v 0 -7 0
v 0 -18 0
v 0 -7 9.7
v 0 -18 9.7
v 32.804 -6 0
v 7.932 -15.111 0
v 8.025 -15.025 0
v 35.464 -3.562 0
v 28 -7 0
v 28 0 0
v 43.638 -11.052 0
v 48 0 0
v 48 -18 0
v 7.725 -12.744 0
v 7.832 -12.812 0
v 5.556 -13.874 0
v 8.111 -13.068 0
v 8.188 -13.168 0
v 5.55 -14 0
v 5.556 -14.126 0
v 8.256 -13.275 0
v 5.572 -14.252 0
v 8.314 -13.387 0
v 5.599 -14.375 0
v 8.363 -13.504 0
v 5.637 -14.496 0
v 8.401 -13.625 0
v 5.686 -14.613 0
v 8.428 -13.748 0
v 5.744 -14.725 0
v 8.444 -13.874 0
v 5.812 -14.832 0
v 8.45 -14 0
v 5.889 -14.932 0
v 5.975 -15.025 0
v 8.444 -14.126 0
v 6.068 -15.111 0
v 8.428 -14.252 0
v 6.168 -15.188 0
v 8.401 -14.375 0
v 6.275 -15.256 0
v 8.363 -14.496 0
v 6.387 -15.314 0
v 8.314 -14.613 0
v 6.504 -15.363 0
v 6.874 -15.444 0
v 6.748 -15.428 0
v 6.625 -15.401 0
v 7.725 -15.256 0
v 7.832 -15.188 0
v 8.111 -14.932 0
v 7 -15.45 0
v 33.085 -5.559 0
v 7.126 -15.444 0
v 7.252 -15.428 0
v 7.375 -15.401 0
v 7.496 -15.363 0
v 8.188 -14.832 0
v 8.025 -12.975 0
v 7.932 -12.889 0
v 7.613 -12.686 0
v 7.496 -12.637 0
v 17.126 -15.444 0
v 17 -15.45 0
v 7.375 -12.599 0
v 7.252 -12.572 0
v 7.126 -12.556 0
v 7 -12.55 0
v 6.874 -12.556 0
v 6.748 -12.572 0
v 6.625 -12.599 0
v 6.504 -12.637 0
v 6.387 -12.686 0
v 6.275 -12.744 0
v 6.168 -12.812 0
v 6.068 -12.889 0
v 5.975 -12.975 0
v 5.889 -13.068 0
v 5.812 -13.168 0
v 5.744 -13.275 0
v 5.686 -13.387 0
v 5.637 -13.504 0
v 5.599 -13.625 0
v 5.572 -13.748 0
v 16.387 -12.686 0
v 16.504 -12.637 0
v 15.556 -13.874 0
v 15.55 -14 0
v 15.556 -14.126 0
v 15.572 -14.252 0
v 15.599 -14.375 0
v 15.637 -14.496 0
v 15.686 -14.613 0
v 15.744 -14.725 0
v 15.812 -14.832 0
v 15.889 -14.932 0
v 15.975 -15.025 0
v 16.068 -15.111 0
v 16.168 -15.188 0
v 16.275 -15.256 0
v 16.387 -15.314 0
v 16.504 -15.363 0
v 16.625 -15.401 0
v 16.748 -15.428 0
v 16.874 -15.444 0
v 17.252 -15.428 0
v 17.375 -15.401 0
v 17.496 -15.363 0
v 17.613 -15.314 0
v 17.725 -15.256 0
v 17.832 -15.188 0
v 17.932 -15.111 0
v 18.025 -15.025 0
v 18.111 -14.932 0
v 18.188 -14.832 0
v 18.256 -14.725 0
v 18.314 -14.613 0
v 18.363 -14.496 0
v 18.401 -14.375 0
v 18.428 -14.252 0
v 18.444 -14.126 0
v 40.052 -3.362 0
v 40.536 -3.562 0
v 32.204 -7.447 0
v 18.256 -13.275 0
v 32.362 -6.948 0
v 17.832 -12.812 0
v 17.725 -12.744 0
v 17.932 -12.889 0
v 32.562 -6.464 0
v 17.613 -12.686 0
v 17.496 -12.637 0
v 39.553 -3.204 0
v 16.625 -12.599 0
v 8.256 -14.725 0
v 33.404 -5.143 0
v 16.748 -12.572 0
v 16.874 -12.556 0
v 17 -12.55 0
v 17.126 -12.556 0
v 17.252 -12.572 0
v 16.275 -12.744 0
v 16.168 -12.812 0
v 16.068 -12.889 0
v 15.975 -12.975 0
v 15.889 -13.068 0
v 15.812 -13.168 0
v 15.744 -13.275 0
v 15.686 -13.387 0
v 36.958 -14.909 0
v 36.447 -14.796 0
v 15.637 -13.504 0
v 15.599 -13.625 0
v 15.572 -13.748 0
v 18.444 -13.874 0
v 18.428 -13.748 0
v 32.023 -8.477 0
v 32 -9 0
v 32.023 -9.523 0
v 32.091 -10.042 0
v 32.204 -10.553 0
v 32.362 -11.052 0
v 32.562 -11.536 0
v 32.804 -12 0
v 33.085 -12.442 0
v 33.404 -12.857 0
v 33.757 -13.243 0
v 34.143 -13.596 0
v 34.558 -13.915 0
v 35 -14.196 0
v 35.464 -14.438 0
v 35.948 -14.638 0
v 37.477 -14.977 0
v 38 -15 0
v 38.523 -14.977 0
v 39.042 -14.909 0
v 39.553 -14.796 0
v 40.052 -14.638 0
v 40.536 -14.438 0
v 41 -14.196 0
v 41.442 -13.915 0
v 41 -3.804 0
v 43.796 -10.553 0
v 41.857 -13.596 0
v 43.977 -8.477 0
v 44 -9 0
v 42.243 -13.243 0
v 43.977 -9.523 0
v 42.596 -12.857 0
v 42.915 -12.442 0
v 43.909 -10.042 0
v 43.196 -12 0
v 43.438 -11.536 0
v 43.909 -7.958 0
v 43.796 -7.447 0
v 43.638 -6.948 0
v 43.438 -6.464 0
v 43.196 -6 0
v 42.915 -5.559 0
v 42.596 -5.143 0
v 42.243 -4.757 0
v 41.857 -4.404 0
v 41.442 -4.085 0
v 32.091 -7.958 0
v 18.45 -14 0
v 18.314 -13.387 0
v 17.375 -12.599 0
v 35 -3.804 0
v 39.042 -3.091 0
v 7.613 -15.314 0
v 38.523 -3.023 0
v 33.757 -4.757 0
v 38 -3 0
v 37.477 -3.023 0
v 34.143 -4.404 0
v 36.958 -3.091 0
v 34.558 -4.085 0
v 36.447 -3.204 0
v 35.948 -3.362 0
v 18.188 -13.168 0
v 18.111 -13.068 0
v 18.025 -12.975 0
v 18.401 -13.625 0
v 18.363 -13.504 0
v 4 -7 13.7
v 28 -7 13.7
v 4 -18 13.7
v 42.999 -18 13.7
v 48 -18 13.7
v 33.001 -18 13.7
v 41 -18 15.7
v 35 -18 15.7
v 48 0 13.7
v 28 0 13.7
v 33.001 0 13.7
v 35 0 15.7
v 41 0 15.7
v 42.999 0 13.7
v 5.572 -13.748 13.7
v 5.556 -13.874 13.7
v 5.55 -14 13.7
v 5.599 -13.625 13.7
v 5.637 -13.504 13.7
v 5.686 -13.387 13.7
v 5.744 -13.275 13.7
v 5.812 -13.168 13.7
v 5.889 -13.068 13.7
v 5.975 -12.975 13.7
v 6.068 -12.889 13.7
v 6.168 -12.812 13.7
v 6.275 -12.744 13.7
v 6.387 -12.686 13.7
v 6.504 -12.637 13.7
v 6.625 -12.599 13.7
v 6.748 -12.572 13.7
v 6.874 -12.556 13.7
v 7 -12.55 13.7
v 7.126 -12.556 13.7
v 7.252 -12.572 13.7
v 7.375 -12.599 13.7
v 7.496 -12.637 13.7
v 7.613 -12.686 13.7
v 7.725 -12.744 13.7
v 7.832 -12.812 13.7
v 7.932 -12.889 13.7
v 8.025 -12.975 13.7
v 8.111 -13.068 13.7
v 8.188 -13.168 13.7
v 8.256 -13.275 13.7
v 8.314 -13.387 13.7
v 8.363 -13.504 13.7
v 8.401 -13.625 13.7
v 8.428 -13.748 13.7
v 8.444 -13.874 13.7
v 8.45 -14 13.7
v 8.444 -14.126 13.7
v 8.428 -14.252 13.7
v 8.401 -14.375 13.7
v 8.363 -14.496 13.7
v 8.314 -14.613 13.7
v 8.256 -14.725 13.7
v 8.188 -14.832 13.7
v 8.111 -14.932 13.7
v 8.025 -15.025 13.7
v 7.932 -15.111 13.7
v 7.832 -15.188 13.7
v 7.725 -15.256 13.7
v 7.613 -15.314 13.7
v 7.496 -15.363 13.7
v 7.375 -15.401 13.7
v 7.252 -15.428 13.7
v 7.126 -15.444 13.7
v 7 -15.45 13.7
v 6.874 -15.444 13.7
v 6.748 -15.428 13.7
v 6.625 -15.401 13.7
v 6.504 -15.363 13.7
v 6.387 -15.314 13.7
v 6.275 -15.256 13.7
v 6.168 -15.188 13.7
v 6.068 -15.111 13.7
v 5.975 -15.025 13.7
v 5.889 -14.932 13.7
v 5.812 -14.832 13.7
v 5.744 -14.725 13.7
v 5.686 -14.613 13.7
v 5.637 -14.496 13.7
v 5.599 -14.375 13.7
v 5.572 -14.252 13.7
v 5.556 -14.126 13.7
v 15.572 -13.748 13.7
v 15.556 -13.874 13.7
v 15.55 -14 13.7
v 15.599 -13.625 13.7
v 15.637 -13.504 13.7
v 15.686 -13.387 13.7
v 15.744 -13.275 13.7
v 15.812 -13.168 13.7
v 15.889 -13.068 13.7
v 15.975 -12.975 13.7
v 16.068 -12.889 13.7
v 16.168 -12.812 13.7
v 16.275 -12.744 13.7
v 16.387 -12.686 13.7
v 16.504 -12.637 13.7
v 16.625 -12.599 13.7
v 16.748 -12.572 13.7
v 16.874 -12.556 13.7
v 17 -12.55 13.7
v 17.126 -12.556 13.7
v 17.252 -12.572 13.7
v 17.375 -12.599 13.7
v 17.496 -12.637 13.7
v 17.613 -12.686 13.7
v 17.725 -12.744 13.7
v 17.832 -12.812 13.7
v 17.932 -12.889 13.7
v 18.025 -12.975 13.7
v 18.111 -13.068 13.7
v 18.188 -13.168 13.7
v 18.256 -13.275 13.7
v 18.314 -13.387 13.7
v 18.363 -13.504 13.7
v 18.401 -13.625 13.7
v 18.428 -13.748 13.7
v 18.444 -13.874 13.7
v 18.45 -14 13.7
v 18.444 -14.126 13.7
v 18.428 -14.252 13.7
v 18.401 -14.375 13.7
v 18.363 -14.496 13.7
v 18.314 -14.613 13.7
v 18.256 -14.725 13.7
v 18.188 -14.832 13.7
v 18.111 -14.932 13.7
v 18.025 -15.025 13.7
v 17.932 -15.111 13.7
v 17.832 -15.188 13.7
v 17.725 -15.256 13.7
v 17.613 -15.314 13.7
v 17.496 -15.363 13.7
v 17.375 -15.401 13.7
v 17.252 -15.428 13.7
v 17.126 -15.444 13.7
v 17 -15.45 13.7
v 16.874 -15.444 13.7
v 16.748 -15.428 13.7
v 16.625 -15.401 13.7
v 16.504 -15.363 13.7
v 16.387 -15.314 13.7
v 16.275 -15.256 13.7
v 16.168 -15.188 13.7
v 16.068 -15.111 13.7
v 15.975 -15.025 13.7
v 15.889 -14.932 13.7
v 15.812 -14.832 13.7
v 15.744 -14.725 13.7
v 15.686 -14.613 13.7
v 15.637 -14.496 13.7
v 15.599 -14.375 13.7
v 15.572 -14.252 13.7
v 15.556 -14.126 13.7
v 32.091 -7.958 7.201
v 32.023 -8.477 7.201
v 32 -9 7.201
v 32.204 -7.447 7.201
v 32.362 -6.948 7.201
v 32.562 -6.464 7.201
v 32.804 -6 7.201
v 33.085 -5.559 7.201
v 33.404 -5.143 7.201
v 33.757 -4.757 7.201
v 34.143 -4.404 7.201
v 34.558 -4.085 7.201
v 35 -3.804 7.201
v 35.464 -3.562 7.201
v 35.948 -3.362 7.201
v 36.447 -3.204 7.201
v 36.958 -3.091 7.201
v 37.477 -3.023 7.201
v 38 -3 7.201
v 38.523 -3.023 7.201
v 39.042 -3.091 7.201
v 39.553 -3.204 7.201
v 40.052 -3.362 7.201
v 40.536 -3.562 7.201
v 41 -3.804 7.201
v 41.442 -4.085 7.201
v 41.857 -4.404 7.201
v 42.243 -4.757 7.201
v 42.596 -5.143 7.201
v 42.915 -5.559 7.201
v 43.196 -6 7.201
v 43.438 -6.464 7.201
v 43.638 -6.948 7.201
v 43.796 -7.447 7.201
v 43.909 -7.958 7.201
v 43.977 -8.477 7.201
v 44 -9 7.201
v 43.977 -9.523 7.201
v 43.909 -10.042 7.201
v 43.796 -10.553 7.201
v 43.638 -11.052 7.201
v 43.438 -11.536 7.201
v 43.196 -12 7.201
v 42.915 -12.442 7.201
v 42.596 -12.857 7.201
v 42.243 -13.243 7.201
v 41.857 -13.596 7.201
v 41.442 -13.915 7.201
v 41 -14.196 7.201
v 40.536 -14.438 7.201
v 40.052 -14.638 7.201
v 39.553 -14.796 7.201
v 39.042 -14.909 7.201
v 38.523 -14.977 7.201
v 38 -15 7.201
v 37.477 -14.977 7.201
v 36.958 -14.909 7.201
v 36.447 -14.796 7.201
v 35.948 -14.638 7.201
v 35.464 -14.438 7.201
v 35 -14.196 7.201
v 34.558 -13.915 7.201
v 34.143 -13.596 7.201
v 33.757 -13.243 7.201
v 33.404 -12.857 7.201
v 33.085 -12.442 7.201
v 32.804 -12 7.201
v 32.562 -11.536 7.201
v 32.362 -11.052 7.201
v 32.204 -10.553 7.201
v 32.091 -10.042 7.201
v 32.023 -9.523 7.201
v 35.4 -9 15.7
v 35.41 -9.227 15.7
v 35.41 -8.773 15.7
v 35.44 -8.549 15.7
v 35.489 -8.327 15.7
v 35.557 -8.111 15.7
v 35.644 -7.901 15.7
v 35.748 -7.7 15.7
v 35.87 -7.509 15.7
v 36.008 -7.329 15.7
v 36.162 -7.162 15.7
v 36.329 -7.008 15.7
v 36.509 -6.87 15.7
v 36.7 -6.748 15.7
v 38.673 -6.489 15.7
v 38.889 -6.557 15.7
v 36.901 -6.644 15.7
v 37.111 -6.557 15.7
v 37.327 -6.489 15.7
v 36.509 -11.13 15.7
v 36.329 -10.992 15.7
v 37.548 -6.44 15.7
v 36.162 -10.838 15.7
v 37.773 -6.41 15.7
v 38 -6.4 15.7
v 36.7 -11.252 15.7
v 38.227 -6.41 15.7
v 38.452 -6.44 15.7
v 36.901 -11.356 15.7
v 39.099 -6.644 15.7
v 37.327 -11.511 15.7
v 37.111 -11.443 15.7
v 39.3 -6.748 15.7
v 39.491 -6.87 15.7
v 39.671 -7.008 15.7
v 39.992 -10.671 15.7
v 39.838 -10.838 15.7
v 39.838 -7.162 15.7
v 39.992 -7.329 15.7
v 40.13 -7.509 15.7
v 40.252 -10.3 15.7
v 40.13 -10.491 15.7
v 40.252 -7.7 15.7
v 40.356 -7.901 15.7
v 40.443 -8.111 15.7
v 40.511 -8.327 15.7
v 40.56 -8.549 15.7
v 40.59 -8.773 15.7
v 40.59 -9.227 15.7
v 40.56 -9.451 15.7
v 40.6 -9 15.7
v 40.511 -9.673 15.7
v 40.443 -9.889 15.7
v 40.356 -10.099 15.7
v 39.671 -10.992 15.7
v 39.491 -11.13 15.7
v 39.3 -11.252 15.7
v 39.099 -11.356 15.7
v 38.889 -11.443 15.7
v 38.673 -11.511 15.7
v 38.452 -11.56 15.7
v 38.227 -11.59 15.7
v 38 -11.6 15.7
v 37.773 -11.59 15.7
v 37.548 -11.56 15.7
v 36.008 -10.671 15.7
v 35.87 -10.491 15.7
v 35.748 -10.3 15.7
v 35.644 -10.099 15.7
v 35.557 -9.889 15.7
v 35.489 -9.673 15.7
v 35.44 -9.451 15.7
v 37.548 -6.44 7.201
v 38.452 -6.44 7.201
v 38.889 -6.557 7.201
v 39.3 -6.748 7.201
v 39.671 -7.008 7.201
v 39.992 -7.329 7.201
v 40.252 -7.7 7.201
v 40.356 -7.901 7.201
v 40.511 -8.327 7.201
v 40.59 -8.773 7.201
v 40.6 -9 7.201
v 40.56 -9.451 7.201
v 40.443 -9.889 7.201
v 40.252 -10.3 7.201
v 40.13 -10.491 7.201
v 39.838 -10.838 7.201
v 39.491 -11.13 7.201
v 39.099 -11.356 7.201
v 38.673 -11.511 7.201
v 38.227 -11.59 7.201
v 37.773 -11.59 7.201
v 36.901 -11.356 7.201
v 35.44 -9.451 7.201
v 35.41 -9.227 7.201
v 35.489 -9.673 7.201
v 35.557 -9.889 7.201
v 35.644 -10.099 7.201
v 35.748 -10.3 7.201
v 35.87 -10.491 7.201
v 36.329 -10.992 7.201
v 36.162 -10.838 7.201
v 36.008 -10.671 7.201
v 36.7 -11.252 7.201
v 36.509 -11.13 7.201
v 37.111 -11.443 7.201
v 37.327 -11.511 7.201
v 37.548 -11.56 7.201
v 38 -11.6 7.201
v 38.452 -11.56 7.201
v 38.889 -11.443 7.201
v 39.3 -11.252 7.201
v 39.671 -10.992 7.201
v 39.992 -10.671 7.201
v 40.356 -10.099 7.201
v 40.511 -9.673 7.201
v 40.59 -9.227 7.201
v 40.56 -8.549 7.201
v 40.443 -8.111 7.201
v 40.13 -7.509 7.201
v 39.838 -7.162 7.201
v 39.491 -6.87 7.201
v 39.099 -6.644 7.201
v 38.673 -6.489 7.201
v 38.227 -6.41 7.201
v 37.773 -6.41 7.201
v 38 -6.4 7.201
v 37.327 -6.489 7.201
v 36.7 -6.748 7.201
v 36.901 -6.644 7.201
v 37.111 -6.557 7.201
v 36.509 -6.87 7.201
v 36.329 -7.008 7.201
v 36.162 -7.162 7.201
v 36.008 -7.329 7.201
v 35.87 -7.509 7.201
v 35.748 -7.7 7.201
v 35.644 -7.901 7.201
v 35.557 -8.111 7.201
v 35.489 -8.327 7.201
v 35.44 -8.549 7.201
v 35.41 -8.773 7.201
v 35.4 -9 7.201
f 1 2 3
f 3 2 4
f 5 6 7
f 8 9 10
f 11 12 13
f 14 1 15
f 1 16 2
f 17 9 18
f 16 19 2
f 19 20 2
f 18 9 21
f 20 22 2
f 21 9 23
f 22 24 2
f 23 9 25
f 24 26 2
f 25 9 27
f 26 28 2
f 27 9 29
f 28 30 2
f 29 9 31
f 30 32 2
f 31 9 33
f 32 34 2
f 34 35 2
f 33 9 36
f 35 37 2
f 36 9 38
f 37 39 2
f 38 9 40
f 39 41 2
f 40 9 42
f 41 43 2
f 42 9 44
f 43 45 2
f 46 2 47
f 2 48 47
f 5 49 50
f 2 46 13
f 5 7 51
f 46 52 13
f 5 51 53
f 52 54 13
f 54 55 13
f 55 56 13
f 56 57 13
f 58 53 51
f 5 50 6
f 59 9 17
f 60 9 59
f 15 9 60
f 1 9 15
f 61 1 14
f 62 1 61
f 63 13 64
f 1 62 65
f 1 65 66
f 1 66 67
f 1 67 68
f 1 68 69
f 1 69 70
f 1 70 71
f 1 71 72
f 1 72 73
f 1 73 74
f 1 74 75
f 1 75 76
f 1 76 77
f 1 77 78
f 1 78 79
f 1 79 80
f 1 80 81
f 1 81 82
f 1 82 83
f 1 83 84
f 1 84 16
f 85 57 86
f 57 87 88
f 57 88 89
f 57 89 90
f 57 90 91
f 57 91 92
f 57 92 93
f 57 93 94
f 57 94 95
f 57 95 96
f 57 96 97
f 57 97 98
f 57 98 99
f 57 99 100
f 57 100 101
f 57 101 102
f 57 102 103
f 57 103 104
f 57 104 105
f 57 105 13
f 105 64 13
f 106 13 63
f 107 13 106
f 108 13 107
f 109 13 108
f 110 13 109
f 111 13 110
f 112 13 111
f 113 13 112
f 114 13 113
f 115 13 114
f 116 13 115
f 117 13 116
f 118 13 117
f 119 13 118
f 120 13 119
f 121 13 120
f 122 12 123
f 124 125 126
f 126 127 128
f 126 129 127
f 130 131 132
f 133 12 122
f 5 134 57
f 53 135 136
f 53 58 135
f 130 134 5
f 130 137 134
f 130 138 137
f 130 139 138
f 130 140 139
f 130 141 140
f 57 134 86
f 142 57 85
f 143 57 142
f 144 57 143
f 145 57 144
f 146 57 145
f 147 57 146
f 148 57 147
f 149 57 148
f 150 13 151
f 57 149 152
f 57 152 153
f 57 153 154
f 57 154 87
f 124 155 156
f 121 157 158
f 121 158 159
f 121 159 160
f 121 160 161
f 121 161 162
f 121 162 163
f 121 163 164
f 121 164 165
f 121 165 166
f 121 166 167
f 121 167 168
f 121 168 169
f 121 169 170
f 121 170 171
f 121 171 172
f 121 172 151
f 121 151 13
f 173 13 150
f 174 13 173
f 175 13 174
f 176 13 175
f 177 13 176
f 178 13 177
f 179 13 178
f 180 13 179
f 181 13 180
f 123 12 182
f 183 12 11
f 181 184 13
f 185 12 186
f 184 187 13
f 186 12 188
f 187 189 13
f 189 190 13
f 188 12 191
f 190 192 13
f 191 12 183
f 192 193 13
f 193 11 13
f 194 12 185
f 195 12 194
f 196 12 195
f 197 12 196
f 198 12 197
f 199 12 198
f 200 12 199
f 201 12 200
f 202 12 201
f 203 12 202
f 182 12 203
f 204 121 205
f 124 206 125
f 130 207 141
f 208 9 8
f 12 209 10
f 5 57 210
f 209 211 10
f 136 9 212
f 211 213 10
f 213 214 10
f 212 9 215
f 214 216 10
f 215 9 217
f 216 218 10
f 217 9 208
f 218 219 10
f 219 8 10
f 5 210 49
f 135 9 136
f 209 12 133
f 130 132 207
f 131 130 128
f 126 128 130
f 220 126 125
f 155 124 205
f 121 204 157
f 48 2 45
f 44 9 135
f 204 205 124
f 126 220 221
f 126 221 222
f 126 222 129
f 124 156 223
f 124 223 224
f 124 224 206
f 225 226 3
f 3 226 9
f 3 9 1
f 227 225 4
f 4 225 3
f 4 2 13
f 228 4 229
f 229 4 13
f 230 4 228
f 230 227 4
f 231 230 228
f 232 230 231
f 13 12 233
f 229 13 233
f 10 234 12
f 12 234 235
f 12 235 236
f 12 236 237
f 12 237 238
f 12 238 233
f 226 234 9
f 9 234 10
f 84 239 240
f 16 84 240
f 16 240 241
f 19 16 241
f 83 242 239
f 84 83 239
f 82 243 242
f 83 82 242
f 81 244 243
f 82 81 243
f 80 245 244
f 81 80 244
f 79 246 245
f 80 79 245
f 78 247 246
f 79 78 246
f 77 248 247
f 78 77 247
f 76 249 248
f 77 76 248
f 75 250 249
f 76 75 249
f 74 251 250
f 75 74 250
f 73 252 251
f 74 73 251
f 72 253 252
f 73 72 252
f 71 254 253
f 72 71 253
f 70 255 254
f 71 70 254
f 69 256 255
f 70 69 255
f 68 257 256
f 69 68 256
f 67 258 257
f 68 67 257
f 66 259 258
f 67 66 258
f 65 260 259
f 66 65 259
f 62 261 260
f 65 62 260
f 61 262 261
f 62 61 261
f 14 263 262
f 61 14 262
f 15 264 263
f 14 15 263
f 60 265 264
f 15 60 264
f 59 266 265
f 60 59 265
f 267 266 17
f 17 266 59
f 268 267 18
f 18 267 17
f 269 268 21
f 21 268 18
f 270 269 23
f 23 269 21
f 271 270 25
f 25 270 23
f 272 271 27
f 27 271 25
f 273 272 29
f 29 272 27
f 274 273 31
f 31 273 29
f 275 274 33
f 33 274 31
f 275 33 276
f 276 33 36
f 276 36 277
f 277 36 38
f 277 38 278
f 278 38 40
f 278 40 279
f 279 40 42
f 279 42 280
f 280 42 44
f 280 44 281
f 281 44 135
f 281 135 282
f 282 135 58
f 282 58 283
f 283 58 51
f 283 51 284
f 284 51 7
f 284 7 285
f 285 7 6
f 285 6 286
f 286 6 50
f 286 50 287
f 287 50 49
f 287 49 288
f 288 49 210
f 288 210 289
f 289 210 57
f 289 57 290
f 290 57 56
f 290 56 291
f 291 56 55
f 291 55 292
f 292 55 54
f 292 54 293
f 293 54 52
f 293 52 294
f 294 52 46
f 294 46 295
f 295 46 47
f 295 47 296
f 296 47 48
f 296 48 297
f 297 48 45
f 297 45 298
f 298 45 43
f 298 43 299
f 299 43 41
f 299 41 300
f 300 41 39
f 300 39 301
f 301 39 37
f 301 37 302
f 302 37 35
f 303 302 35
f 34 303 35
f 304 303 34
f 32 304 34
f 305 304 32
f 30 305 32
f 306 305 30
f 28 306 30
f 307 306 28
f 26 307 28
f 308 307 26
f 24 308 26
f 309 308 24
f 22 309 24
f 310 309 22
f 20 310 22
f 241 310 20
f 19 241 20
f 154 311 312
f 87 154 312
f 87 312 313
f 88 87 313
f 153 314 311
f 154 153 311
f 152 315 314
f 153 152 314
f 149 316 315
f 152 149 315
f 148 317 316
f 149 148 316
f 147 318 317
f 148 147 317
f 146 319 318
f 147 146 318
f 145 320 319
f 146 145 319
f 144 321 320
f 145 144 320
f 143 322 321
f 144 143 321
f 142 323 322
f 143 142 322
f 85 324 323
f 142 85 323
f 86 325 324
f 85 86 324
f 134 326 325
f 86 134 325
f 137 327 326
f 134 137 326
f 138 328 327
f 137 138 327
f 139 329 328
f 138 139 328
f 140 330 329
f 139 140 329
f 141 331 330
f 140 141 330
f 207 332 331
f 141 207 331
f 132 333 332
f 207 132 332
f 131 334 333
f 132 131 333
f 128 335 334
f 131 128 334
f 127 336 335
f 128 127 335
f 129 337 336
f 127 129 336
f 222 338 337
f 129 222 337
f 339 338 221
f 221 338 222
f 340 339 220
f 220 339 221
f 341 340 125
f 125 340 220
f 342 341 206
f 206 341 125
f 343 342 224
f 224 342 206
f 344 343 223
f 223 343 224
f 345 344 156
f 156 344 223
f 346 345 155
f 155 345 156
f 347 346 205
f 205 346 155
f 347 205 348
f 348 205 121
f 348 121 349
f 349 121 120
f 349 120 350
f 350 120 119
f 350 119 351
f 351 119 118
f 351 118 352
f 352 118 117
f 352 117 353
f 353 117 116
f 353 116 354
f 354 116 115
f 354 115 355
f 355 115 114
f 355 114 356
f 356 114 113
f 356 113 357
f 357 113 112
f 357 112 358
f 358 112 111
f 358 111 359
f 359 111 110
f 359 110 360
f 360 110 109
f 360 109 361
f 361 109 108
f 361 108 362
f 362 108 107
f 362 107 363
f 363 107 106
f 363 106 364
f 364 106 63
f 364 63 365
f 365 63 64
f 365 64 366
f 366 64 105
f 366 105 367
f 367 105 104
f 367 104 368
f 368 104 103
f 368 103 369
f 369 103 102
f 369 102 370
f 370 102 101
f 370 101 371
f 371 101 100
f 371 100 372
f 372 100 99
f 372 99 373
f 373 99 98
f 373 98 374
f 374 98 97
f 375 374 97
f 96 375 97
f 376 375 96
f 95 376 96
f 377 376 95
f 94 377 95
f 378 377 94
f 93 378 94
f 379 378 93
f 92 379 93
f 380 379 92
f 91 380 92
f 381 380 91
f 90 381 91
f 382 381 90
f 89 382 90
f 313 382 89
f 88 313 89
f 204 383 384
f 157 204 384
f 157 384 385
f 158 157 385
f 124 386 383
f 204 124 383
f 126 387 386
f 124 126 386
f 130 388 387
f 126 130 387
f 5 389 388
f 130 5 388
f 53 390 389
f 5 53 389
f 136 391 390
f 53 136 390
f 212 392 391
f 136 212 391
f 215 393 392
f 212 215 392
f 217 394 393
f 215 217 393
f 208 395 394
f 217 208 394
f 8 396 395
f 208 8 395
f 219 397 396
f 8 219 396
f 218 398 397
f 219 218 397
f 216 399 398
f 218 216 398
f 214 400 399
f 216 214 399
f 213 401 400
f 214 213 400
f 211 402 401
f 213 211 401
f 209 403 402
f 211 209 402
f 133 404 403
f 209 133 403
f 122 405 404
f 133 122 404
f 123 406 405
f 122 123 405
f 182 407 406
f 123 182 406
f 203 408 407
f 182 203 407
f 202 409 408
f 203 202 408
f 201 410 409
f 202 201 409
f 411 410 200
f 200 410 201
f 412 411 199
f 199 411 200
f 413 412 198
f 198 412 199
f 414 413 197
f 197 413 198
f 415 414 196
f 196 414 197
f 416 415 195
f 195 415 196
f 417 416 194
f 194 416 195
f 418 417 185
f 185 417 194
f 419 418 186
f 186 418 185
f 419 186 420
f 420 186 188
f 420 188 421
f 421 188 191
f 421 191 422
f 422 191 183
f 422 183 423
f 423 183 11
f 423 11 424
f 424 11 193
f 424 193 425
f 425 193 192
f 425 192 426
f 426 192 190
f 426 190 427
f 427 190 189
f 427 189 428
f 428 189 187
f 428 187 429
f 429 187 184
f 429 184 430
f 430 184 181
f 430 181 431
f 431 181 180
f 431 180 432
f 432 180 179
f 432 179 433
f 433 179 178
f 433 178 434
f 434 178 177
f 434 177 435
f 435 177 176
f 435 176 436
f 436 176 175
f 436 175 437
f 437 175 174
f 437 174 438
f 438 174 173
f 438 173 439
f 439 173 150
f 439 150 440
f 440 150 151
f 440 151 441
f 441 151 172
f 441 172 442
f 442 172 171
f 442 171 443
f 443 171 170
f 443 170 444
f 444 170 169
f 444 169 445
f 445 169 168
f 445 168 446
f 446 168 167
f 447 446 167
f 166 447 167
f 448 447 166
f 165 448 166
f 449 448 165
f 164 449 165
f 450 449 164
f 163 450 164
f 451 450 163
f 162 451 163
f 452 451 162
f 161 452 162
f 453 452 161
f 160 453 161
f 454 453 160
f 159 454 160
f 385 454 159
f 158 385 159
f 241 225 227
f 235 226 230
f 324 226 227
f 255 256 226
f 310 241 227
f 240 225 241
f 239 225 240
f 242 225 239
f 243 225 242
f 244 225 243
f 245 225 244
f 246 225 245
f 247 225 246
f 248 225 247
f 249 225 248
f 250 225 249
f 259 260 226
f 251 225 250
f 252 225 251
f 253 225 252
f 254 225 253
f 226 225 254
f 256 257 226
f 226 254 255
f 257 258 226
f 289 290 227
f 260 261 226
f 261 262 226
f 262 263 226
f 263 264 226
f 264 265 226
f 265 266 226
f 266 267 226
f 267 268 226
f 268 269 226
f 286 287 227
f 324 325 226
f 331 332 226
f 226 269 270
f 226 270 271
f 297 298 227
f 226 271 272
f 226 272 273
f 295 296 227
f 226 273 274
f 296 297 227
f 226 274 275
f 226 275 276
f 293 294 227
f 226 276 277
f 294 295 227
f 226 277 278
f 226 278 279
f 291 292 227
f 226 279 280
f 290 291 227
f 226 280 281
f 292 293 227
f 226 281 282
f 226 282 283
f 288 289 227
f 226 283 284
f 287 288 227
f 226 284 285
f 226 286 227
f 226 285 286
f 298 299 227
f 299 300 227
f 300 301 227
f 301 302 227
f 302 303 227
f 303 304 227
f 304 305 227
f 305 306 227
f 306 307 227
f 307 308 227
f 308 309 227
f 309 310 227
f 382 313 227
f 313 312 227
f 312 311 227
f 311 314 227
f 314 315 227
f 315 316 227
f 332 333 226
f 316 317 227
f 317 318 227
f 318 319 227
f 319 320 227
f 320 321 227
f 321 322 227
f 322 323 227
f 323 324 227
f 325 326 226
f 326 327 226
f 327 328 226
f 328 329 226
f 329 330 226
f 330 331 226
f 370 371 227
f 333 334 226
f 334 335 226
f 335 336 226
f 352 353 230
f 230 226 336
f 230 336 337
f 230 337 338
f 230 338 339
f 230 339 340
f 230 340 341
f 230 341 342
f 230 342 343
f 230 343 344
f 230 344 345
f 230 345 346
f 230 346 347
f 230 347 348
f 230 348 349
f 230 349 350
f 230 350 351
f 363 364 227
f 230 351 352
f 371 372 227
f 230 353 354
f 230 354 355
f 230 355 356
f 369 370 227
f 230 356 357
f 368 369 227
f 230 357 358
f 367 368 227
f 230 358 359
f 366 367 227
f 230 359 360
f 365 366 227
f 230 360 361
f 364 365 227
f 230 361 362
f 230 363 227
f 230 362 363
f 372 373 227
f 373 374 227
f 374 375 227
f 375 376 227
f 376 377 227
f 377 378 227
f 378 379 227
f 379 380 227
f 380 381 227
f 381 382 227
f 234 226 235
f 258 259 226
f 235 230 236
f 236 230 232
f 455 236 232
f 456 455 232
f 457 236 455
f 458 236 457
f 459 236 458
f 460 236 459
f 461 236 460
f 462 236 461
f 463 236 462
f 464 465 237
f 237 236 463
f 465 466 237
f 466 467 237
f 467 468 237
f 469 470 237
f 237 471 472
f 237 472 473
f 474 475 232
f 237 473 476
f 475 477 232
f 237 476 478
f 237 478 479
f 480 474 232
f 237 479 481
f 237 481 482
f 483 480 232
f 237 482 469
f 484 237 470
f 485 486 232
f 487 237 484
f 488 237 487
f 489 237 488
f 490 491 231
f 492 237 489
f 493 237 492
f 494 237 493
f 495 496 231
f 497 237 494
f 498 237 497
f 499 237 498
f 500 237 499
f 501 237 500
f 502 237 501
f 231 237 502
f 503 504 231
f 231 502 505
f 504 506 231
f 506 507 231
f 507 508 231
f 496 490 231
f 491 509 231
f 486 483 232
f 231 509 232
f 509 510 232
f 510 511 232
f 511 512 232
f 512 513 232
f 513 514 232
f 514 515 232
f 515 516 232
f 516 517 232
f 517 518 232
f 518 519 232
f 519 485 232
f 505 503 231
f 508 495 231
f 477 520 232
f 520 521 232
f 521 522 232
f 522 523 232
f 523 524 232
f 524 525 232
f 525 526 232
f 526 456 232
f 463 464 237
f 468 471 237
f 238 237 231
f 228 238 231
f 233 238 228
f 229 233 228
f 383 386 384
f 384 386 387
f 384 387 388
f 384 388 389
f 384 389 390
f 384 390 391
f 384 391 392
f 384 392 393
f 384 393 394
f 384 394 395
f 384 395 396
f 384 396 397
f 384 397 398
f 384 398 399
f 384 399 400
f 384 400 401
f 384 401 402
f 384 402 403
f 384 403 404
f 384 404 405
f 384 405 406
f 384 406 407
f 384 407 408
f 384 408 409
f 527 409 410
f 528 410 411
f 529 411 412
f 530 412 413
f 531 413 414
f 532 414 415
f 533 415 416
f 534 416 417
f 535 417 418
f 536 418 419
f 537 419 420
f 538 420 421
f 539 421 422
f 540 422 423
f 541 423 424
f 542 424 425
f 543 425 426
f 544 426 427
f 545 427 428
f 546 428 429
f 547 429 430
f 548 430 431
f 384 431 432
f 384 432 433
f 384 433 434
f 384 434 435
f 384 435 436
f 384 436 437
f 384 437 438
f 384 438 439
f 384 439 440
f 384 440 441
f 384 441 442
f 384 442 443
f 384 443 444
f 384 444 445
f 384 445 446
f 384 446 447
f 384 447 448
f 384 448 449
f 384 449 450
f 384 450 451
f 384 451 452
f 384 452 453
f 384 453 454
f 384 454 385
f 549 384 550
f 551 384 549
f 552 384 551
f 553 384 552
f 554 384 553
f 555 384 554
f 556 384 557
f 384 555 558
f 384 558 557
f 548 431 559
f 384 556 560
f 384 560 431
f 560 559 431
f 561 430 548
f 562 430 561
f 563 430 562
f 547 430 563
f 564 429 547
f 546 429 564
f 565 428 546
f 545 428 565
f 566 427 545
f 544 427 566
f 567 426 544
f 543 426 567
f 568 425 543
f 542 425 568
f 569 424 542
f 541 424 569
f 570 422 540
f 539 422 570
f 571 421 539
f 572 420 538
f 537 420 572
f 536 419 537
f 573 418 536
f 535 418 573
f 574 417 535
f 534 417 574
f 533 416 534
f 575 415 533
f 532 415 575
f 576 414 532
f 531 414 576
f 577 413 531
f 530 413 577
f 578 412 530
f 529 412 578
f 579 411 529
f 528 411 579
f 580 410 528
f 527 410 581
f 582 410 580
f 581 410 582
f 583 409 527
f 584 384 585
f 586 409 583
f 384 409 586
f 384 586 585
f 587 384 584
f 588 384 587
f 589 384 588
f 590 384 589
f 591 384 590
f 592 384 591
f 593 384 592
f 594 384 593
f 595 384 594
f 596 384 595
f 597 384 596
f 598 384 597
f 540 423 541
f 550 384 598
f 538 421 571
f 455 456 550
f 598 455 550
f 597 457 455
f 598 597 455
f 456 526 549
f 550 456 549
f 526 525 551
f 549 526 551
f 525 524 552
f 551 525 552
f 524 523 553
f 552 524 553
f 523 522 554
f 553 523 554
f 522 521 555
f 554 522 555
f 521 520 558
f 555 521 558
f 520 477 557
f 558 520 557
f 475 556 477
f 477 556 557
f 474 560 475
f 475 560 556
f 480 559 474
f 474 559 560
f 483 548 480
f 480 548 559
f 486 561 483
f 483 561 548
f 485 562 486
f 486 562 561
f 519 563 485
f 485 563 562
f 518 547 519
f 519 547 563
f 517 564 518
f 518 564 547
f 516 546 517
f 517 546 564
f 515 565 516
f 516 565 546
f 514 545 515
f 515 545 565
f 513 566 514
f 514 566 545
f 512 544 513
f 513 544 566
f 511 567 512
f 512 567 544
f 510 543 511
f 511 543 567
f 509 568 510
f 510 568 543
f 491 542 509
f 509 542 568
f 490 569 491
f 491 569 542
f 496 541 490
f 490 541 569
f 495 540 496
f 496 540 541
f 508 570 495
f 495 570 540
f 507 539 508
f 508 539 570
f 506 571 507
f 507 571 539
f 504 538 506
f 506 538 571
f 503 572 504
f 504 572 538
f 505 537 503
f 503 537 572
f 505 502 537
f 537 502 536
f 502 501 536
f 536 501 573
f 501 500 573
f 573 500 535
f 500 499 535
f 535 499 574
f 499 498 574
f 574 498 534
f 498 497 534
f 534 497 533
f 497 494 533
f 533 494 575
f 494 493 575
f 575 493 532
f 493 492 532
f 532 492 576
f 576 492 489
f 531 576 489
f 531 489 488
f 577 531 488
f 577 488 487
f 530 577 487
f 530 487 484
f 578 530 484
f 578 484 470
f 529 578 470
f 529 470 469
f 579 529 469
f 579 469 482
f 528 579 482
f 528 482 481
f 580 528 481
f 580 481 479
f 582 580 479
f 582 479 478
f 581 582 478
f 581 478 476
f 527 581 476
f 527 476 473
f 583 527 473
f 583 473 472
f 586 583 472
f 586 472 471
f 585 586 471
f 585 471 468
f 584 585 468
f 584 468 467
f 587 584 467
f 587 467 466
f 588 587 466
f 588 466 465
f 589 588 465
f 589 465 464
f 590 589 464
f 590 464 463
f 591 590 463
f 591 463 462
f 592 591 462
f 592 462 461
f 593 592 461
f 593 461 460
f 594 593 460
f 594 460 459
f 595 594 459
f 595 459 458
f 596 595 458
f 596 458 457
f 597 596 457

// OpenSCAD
// Makefarm Prusa i3v screw adjusted Z stop.
// Part 1 of 2: the switch bracket.

// Set to 0 for final STL compilation (slow). Set to 1 for quick
// debugging (lower quality)
debug = 0;

// Determine the quality of circles (better = slower compilation).
$fn = (debug != 0) ? 12 : 72;

// Define of the main sub part
body_width = 13.7; 
body_length = 48; 
body_height = 18; 

// Define of the V slot.
slot_width = 10;  // at wide side (was 9)
slot_thickness = 2;
slot_angle = 45;
slot_margin = 5;

// Define of the M5 screw hole.
slot_hole_offset = slot_width/2 + slot_margin;
slot_hole_height = body_height / 2;
slot_hole_diameter = 5.2;  // slight margin for M4 screw.

// Defines of the M5 screw head sink.
slot_hole_sink_thickness = 6.5;
slot_hole_sink_diameter = 12;

// Define the two M3 switch holes.
switch_center_offset = slot_hole_offset + 26;
switch_holes_spacing = 10;
switch_holes_height = 14;
switch_holes_diameter = 2.9;  // M3 screws thread into this hole.

// Define the substraction below the switch.
notch_height = 7;
notch_length = body_length - 2*slot_margin - slot_width;

// Defines the diagonal cut at the end left end.
chop_radius = 4;

// Small >0 dimension to disambigue operations.
eps = 0.001;
eps2 = 2*eps;

// Creates the trapezoide that fits the V slot.
module slot() {
  inset = slot_thickness / tan(slot_angle);

  translate([body_length - slot_hole_offset - slot_width/2, body_width - eps, 0]) 
  linear_extrude(height=body_height)
      polygon(points=[[0,0],[inset, slot_thickness + eps],[slot_width-inset, slot_thickness + eps],[slot_width,0]]);


//    translate([body_length - slot_hole_offset - slot_width/2, body_width - eps, 0]) 
//          slot(body_height, slot_width, slot_thickness + eps, 45);

}

// Creates a hole cylinder at given radius and depth from the front face.
module hole(x, z, l, r) {
  translate([x, -eps, z]) rotate([-90, 0, 0])  cylinder(r=r, h=l+eps2);
}

// Creates the main body, before adding the vslot and substracting the
// holes and notch.
module body() {
  cube([body_length, body_width, body_height]);
}

module slot_hole() {
  // M5 screw hole
  hole(body_length - slot_hole_offset, slot_hole_height, body_width+slot_thickness, slot_hole_diameter/2);
  // Screw head sink hole
  hole(body_length - slot_hole_offset, slot_hole_height, body_width-slot_hole_sink_thickness, slot_hole_sink_diameter/2);
}

module switch_holes() {
 // M3 switch hole 1.
    hole(body_length - switch_center_offset + switch_holes_spacing/2 , switch_holes_height, body_width, switch_holes_diameter/2);
    // M3 switch hole 2.
    hole(body_length - switch_center_offset - switch_holes_spacing/2, switch_holes_height, body_width, switch_holes_diameter/2);
}

module cuts() {
  translate([-eps, -eps, 0]) cube([notch_length+eps, body_width+eps2, notch_height]);
 // cube([2*body_width, body_width, body_height+eps]);
  translate([0, body_width - chop_radius, 0]) rotate([0, 0, 45]) cube([2*body_width, body_width, body_height+eps]);
}

// Creates the entire part.
module main() {
  difference() {
    union() {
      body();
      slot();
      //translate([body_length - slot_hole_offset - slot_width/2, body_width - eps, 0]) 
      //    slot(body_height, slot_width, slot_thickness + eps, 45);

    }
    slot_hole();
    switch_holes();
    cuts();

    // M5 hole
    // hole(body_length - slot_hole_offset, slot_hole_height, body_width+slot_thickness, slot_hole_diameter/2);
    // M5 screw head sink hole
    //hole(body_length - slot_hole_offset, slot_hole_height, body_width-slot_hole_sink_thickness, slot_hole_sink_diameter/2);
    // M3 switch hole 1.
    //hole(body_length - switch_center_offset + switch_holes_spacing/2 , switch_holes_height, body_width, switch_holes_diameter/2);
    // M3 switch hole 2.
    //hole(body_length - switch_center_offset - switch_holes_spacing/2, switch_holes_height, body_width, switch_holes_diameter/2);
    // Notch removal.
    //translate([-eps, -eps, 0]) cube([notch_length+eps, body_width+eps2, notch_height]);
  }
}

 // translate([0, body_width-5, 0]) rotate([0, 0, 45]) cube([2*body_width, body_width, body_height+eps]);

if (debug != 0) {
  // Part is in it's natural orientation.
  main();
  // A simple reminder that we are in the debug mode.
  sphere(r=1, center=true);
} else {
  // Part is in it's printing orientation.
  rotate([90, 0, 0]) main();
}
